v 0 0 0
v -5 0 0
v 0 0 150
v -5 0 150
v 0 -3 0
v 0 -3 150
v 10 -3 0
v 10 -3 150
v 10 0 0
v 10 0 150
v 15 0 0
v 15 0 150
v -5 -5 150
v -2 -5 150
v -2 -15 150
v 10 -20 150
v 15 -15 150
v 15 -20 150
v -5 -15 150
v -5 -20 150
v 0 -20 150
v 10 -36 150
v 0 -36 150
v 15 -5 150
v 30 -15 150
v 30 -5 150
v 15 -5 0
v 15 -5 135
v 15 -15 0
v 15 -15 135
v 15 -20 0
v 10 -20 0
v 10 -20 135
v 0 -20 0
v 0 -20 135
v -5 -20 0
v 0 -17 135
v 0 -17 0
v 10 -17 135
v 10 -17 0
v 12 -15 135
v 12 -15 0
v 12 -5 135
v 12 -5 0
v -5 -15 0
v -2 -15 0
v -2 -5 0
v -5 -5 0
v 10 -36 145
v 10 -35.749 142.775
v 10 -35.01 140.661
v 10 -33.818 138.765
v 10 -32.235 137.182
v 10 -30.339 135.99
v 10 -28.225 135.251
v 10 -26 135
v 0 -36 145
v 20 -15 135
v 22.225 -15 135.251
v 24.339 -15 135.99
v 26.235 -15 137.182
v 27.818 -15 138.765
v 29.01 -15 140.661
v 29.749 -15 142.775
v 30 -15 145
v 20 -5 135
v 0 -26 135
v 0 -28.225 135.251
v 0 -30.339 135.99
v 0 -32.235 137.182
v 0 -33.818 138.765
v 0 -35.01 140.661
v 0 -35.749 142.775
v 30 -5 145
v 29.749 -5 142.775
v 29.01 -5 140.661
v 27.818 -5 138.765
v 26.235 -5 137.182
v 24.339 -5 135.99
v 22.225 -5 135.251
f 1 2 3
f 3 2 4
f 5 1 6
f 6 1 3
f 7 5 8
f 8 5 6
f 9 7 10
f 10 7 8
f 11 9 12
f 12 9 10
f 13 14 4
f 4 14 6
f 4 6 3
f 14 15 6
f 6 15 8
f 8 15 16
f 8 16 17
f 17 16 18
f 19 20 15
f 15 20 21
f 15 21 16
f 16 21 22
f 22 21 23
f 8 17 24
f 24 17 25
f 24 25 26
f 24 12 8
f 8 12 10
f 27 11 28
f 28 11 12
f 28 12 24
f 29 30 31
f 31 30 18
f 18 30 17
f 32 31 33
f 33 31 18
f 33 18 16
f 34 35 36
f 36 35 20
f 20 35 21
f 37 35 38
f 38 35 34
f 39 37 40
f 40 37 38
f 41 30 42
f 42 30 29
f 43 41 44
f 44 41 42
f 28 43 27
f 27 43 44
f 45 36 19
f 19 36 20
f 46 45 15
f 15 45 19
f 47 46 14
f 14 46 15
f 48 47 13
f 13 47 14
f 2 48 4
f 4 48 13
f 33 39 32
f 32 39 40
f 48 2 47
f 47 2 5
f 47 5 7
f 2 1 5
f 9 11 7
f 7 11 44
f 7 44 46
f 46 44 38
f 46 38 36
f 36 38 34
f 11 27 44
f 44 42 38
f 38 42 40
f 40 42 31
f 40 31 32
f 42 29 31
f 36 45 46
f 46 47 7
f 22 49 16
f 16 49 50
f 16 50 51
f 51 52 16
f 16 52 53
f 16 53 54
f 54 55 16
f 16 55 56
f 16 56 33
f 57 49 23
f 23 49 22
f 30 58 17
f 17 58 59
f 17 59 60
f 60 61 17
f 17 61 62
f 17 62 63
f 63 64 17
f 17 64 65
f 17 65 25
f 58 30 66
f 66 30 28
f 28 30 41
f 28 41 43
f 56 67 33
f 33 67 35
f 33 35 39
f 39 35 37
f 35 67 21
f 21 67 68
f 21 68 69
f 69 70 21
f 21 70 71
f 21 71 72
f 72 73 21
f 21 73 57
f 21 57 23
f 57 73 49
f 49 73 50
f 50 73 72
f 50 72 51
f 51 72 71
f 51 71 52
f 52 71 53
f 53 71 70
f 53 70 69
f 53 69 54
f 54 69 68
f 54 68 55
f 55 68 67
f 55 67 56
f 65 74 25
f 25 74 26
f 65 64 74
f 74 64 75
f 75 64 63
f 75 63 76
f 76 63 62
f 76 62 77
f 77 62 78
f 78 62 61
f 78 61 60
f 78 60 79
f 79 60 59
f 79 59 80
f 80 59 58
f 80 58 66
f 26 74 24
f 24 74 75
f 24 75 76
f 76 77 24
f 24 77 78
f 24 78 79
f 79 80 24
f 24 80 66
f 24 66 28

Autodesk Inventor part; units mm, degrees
ref_plane "YZ Plane" through (0, 0, 0) normal (1, 0, 0) x (0, 1, 0)
ref_plane "XZ Plane" through (0, 0, 0) normal (0, 1, 0) x (-1, 0, 0)
ref_plane "XY Plane" through (0, 0, 0) normal (0, 0, 1) x (1, 0, 0)
sketch "Esboço1" plane through (0, 0, 0) normal (0, 0, 1) x (1, 0, 0)
  line L0 (0, 0) -> (-5, 0)
  line L1 (-5, 0) -> (-5, -5)
  line L2 (-5, -5) -> (-2, -5)
  line L3 (-2, -5) -> (-2, -15)
  line L4 (-2, -15) -> (-5, -15)
  line L5 (-5, -15) -> (-5, -20)
  line L6 (-5, -20) -> (0, -20)
  line L7 (0, -20) -> (0, -17)
  line L8 (0, -17) -> (10, -17)
  line L9 (10, -17) -> (10, -20)
  line L10 (10, -20) -> (15, -20)
  line L11 (15, -20) -> (15, -15)
  line L12 (15, -15) -> (12, -15)
  line L13 (12, -15) -> (12, -5)
  line L14 (12, -5) -> (15, -5)
  line L15 (15, -5) -> (15, 0)
  line L16 (15, 0) -> (10, 0)
  line L17 (10, 0) -> (10, -3)
  line L18 (10, -3) -> (0, -3)
  line L19 (0, -3) -> (0, 0)
  dimension "d4" = 5
  dimension "d5" = 5
  dimension "d6" = 3
  dimension "d7" = 10
  dimension "d8" = 3
  dimension "d9" = 5
  dimension "d10" = 5
  dimension "d11" = 3
  dimension "d12" = 10
  dimension "d13" = 5
  dimension "d14" = 5
  dimension "d15" = 3
  dimension "d16" = 10
  dimension "d17" = 3
  dimension "d18" = 5
  dimension "d19" = 3
  dimension "d20" = 10
extrude "Extrusão1" add sketch "Esboço1" along normal blind 150
sketch "Esboço5" plane through (0, 0, 150) normal (0, 0, 1) x (1, 0, 0)
  line L0 (12, -15) -> (12, -5) projected
  line L1 (15, -15) -> (12, -15) projected
  line L2 (12, -5) -> (15, -5)
  line L3 (15, -5) -> (15, -15)
  line L4 (15, -15) -> (12, -15)
  line L5 (12, -15) -> (12, -5)
  line L6 (0, -17) -> (10, -17) projected
  line L7 (0, -17) -> (10, -17)
  line L8 (10, -17) -> (10, -20)
  line L9 (10, -20) -> (0, -20)
  line L10 (0, -20) -> (0, -17)
  line L11 (12, -5) -> (15, -5) projected
  line L12 (15, -5) -> (25, -5)
  line L13 (25, -5) -> (25, -15)
  line L14 (25, -15) -> (15, -15)
  line L15 (15, -15) -> (15, -5)
  line L16 (0, -20) -> (0, -17) projected
  line L17 (0, -20) -> (10, -20)
  line L18 (10, -20) -> (10, -31)
  line L19 (10, -31) -> (0, -31)
  line L20 (0, -31) -> (0, -20)
  line L21 (0, -31) -> (10, -31)
  line L22 (10, -31) -> (10, -36)
  line L23 (10, -36) -> (0, -36)
  line L24 (0, -36) -> (0, -31)
  line L25 (25, -5) -> (30, -5)
  line L26 (30, -5) -> (30, -15)
  line L27 (30, -15) -> (25, -15)
  line L28 (25, -15) -> (25, -5)
  point P0 (0, 0)
extrude "Extrusão2" add sketch "Esboço5" against normal blind 15
fillet "Arredondamento1" radius 10 2 edges at (30, -10, 135) (5, -36, 135)
properties part number "viga de suporte"
